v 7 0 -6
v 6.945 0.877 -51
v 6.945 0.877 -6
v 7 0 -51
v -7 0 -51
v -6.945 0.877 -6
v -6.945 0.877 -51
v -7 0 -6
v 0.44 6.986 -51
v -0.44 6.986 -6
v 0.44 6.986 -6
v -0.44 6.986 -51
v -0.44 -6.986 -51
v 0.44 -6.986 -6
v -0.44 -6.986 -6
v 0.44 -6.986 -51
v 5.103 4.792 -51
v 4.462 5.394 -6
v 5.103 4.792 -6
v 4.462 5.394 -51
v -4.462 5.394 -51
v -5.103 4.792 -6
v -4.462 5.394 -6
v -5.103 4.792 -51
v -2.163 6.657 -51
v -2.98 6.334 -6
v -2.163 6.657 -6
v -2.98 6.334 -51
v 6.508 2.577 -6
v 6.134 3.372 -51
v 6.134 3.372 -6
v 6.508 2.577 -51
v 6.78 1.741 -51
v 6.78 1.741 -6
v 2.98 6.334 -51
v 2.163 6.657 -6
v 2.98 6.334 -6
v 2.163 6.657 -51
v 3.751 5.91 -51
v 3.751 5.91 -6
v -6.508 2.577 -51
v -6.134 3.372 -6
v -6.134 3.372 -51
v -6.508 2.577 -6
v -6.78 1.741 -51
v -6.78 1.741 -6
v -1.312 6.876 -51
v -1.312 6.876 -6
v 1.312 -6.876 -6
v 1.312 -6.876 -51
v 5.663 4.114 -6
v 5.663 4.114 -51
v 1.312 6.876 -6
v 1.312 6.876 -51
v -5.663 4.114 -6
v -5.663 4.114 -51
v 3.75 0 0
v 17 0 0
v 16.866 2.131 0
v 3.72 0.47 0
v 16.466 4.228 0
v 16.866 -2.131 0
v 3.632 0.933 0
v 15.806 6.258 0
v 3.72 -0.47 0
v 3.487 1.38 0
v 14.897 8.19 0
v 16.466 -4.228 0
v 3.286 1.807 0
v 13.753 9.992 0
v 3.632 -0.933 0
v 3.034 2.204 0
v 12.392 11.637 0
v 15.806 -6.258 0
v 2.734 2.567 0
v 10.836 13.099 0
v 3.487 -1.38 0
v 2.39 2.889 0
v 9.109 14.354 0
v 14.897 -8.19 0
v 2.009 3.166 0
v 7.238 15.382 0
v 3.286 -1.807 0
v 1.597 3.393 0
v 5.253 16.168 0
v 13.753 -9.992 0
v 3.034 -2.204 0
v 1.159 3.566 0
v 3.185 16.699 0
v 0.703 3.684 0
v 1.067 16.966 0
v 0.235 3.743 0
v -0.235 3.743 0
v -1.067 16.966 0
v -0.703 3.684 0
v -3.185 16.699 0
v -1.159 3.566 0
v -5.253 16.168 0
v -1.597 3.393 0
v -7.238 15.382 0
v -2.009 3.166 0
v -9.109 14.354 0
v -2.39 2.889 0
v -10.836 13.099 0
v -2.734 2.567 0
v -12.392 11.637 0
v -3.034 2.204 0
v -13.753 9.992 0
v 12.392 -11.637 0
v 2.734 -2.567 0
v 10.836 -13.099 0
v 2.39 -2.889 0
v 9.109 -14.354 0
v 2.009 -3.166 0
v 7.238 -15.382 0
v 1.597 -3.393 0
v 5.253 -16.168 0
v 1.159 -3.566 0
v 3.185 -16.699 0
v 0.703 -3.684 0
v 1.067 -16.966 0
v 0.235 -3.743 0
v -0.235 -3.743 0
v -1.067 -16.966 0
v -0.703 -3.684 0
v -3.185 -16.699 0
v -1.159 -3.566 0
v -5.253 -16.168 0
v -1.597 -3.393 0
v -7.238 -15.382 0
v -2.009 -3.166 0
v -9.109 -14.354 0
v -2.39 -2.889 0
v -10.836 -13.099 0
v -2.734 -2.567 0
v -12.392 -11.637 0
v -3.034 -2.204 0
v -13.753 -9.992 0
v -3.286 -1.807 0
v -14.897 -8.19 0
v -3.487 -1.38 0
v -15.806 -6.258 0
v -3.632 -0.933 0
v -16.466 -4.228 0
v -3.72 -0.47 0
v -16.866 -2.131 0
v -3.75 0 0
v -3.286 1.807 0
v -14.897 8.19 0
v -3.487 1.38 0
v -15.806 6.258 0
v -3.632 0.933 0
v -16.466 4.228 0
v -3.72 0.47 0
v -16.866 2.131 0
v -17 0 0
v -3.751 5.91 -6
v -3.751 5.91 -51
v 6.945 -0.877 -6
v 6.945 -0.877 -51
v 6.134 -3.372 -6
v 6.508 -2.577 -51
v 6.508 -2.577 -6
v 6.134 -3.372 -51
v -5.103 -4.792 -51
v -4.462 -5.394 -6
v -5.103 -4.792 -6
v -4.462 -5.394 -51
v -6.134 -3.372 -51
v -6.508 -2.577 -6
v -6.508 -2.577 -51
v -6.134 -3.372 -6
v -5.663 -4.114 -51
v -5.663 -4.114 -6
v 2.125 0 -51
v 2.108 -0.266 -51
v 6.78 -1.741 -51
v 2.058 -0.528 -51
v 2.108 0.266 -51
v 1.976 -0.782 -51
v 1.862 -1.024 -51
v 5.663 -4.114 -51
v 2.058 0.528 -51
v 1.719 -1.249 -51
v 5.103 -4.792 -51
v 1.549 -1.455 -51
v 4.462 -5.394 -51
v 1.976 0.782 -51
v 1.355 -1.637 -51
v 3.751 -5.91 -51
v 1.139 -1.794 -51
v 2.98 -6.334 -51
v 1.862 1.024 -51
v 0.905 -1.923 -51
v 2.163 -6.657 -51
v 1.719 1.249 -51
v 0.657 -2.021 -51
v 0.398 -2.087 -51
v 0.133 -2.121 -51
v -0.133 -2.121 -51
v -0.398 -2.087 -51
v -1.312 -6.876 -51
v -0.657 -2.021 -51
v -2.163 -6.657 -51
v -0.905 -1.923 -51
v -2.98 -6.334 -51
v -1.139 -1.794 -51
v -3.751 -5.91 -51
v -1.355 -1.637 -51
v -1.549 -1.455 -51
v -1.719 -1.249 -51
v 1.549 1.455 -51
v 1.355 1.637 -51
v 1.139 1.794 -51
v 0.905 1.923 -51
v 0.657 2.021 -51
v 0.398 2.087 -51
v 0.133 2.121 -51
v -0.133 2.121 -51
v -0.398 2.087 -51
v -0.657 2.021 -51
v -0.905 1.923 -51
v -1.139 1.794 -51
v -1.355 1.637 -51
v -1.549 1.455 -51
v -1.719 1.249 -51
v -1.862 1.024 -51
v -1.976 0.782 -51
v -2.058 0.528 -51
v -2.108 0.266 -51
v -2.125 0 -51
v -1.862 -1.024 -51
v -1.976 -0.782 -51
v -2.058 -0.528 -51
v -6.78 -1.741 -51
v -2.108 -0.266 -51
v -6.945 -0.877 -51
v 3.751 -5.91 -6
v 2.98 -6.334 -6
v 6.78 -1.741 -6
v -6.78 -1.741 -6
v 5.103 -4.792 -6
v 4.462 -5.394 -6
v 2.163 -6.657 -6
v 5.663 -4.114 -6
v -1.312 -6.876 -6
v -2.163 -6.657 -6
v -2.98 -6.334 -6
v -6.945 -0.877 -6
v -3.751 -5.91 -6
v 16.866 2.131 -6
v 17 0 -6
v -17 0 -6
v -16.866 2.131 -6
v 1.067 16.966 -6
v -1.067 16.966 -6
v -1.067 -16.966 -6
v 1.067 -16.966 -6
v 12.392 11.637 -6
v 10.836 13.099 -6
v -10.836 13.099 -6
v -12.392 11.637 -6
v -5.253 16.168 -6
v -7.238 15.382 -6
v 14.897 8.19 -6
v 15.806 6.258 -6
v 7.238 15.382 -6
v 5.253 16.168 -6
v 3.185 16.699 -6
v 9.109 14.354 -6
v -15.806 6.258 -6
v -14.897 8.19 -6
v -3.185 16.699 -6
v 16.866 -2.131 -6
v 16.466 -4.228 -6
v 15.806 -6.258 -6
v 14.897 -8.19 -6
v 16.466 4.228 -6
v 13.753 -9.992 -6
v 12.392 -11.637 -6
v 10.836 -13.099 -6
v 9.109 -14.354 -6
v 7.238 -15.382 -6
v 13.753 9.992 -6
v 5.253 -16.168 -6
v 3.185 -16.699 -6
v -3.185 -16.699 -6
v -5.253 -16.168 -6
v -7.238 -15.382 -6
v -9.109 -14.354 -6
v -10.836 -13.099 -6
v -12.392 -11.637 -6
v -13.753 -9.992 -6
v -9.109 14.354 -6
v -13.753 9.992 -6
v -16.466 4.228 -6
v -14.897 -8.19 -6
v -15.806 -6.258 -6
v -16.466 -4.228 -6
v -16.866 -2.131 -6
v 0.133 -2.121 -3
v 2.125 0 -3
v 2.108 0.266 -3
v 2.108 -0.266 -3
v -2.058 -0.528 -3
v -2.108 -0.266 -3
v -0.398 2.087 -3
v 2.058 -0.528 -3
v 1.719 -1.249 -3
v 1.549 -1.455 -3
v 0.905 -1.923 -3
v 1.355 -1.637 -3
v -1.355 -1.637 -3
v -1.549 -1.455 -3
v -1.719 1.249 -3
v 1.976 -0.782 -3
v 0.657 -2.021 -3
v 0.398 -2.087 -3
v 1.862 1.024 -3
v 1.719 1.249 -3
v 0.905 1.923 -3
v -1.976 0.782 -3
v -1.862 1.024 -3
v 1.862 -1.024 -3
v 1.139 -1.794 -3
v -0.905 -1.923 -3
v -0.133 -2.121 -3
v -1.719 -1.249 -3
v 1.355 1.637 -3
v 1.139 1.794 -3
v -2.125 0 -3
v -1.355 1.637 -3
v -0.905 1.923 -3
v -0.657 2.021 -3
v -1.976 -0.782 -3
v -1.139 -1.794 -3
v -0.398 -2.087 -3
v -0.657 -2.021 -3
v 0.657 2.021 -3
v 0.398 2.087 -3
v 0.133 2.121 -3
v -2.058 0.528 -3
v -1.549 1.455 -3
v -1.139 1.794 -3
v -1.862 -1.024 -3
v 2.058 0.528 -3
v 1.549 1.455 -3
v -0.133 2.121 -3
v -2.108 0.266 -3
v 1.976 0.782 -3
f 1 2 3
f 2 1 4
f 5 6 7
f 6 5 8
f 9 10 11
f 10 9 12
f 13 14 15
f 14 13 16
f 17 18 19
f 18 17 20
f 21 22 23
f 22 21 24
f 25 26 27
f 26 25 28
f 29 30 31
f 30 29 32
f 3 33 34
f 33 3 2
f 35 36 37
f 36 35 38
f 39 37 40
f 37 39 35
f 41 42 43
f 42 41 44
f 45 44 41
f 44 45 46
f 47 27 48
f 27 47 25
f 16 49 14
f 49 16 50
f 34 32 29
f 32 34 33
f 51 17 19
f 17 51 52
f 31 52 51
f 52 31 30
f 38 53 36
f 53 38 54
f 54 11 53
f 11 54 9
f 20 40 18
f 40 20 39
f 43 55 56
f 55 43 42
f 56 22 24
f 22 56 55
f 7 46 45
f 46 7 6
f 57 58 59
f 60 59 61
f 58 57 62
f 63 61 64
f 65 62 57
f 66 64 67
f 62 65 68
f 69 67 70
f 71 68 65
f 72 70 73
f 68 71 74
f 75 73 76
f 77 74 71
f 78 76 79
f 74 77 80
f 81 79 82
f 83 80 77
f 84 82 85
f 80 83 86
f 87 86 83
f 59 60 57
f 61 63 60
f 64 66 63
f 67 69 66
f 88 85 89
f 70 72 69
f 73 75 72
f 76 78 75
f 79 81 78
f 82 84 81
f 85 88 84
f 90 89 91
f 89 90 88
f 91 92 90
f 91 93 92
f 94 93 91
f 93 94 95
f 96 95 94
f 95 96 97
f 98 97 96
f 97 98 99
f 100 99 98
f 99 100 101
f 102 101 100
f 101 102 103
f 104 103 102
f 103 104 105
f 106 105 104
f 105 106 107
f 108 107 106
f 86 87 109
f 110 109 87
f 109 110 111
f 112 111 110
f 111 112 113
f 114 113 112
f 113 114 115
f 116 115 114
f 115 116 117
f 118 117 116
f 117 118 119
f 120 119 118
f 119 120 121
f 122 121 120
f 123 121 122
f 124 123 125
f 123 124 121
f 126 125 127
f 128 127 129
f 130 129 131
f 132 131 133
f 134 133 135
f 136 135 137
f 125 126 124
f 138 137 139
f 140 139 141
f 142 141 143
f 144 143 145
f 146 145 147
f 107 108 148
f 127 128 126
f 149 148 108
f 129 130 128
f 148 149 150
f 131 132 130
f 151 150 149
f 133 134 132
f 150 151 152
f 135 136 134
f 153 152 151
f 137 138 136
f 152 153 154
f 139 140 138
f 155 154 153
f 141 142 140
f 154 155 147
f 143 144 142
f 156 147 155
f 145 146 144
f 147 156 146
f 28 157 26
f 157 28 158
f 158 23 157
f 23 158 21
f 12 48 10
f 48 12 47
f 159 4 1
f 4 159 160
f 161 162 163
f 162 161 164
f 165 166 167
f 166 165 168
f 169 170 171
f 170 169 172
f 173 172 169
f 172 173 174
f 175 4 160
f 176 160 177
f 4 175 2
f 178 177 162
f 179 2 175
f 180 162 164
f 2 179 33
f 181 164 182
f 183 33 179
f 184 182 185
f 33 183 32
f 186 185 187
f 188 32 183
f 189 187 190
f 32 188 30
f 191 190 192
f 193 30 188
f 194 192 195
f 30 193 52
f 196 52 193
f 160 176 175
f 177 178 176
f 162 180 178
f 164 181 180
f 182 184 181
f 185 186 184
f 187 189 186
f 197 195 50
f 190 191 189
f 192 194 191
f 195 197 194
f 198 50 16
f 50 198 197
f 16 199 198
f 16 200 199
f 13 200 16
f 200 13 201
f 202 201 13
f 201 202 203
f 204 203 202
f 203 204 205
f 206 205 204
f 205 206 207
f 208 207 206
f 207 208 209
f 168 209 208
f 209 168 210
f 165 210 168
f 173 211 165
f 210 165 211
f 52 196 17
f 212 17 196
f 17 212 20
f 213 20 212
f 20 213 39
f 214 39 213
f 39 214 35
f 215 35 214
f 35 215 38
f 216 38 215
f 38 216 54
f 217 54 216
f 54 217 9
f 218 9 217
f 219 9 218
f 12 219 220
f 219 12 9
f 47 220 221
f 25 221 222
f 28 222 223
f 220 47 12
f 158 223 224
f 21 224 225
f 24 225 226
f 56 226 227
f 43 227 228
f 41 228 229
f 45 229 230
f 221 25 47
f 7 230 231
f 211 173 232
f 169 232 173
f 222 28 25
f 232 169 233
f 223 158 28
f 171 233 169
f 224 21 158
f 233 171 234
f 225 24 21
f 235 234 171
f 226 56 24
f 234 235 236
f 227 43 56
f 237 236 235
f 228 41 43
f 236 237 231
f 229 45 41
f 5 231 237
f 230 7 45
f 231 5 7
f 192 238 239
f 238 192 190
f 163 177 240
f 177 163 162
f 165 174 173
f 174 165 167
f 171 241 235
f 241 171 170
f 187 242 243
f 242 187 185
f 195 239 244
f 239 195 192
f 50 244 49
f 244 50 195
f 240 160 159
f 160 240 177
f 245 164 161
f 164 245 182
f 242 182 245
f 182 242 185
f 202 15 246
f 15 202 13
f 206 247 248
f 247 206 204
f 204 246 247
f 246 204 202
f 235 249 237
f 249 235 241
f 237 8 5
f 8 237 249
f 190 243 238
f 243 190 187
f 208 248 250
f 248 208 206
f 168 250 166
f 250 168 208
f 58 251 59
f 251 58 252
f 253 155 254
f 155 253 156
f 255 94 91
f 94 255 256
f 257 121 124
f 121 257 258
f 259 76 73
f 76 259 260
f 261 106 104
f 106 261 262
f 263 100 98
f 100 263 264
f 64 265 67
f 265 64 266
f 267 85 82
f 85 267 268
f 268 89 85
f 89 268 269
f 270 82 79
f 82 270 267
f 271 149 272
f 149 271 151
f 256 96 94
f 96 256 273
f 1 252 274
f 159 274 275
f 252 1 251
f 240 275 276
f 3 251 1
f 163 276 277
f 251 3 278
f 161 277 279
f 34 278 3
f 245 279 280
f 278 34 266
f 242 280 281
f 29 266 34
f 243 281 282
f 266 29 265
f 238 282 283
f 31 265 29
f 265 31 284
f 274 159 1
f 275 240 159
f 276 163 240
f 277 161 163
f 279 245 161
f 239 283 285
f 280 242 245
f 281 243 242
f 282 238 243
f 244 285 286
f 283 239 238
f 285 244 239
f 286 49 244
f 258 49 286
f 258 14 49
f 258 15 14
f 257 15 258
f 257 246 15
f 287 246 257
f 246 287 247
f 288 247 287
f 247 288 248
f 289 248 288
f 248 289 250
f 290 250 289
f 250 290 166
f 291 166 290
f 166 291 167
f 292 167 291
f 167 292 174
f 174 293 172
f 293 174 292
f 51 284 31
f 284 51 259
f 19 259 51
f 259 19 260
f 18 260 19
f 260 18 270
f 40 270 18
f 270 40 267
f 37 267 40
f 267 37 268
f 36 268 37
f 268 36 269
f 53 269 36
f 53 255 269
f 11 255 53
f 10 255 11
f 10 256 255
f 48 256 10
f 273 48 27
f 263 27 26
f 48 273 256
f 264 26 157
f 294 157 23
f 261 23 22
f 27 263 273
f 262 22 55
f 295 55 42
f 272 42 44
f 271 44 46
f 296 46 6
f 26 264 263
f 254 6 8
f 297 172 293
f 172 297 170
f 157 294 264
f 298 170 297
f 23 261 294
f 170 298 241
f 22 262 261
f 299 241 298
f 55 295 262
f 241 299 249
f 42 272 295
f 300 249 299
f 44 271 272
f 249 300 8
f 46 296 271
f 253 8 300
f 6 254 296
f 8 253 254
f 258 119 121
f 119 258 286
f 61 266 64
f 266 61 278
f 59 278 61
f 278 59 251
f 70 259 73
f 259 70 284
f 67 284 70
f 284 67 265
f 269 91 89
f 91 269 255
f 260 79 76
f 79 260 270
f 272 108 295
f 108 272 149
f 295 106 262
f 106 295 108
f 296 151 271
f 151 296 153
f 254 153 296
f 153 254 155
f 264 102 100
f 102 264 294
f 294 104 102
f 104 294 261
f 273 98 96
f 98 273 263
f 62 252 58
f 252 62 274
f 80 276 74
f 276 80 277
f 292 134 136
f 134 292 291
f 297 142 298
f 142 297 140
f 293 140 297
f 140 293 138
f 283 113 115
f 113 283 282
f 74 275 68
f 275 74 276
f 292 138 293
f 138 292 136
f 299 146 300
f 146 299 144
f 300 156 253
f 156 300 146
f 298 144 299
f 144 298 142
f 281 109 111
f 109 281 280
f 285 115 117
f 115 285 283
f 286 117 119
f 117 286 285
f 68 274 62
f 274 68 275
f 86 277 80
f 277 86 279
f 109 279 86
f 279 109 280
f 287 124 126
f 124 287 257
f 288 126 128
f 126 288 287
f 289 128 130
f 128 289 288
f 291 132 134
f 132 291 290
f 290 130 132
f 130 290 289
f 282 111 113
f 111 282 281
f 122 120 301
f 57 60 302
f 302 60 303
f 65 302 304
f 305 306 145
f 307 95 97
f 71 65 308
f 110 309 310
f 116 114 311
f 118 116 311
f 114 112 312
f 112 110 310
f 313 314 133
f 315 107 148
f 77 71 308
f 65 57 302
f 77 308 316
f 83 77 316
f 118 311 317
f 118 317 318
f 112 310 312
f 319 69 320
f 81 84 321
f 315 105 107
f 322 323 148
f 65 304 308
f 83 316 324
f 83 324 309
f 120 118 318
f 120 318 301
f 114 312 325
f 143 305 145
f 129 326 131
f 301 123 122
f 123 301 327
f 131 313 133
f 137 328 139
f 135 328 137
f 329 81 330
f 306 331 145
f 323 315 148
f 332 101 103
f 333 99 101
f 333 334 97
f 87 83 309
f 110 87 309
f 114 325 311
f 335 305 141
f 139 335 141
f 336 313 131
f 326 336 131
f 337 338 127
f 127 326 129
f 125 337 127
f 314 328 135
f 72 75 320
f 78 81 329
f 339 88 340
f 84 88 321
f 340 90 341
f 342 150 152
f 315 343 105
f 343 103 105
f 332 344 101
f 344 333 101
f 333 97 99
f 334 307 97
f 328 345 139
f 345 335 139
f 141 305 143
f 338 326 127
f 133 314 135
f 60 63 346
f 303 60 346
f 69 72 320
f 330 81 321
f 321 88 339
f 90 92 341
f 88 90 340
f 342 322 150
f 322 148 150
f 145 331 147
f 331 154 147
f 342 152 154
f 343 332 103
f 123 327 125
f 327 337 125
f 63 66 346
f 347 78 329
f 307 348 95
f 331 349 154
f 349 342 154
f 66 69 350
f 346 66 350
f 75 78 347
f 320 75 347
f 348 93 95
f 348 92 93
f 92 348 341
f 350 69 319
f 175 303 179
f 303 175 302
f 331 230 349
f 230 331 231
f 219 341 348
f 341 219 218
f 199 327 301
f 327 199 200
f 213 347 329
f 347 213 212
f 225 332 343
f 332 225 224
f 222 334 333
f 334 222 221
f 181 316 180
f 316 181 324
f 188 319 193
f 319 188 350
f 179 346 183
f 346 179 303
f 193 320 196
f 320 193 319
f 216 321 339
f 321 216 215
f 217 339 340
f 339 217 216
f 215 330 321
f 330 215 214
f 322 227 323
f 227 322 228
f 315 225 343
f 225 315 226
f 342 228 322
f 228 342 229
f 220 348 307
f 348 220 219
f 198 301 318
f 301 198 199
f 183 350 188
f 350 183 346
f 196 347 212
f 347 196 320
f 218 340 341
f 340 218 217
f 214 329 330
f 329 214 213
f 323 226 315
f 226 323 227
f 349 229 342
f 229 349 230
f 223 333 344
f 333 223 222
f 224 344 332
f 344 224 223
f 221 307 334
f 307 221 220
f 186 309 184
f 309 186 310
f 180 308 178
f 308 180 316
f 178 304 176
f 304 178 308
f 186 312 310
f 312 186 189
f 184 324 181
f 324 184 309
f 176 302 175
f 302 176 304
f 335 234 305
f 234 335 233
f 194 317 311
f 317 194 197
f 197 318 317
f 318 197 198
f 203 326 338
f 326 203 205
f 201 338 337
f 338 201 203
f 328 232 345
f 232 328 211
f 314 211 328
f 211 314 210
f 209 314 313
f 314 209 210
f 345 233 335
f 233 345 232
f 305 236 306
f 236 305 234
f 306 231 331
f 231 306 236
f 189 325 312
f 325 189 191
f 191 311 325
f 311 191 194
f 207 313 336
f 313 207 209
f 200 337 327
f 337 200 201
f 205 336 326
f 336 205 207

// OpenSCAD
$fn = 50;


difference() {
	union() {
		translate(v = [0, 0, -51.0000000000]) {
			cylinder(h = 51, r = 7.0000000000);
		}
		translate(v = [0, 0, -6.0000000000]) {
			cylinder(h = 6, r = 17.0000000000);
		}
	}
	union() {
		translate(v = [0, 0, 0]) {
			rotate(a = [0, 0, 0]) {
				difference() {
					union() {
						#translate(v = [0, 0, -51.0000000000]) {
							cylinder(h = 51, r = 2.0000000000);
						}
						#translate(v = [0, 0, -3]) {
							cylinder(h = 3, r = 7.0000000000, r1 = 2.1250000000, r2 = 3.7500000000);
						}
						#translate(v = [0, 0, -51.0000000000]) {
							cylinder(h = 51, r = 2.1250000000);
						}
						#translate(v = [0, 0, -51.0000000000]) {
							cylinder(h = 51, r = 2.0000000000);
						}
					}
					union();
				}
			}
		}
	}
}
